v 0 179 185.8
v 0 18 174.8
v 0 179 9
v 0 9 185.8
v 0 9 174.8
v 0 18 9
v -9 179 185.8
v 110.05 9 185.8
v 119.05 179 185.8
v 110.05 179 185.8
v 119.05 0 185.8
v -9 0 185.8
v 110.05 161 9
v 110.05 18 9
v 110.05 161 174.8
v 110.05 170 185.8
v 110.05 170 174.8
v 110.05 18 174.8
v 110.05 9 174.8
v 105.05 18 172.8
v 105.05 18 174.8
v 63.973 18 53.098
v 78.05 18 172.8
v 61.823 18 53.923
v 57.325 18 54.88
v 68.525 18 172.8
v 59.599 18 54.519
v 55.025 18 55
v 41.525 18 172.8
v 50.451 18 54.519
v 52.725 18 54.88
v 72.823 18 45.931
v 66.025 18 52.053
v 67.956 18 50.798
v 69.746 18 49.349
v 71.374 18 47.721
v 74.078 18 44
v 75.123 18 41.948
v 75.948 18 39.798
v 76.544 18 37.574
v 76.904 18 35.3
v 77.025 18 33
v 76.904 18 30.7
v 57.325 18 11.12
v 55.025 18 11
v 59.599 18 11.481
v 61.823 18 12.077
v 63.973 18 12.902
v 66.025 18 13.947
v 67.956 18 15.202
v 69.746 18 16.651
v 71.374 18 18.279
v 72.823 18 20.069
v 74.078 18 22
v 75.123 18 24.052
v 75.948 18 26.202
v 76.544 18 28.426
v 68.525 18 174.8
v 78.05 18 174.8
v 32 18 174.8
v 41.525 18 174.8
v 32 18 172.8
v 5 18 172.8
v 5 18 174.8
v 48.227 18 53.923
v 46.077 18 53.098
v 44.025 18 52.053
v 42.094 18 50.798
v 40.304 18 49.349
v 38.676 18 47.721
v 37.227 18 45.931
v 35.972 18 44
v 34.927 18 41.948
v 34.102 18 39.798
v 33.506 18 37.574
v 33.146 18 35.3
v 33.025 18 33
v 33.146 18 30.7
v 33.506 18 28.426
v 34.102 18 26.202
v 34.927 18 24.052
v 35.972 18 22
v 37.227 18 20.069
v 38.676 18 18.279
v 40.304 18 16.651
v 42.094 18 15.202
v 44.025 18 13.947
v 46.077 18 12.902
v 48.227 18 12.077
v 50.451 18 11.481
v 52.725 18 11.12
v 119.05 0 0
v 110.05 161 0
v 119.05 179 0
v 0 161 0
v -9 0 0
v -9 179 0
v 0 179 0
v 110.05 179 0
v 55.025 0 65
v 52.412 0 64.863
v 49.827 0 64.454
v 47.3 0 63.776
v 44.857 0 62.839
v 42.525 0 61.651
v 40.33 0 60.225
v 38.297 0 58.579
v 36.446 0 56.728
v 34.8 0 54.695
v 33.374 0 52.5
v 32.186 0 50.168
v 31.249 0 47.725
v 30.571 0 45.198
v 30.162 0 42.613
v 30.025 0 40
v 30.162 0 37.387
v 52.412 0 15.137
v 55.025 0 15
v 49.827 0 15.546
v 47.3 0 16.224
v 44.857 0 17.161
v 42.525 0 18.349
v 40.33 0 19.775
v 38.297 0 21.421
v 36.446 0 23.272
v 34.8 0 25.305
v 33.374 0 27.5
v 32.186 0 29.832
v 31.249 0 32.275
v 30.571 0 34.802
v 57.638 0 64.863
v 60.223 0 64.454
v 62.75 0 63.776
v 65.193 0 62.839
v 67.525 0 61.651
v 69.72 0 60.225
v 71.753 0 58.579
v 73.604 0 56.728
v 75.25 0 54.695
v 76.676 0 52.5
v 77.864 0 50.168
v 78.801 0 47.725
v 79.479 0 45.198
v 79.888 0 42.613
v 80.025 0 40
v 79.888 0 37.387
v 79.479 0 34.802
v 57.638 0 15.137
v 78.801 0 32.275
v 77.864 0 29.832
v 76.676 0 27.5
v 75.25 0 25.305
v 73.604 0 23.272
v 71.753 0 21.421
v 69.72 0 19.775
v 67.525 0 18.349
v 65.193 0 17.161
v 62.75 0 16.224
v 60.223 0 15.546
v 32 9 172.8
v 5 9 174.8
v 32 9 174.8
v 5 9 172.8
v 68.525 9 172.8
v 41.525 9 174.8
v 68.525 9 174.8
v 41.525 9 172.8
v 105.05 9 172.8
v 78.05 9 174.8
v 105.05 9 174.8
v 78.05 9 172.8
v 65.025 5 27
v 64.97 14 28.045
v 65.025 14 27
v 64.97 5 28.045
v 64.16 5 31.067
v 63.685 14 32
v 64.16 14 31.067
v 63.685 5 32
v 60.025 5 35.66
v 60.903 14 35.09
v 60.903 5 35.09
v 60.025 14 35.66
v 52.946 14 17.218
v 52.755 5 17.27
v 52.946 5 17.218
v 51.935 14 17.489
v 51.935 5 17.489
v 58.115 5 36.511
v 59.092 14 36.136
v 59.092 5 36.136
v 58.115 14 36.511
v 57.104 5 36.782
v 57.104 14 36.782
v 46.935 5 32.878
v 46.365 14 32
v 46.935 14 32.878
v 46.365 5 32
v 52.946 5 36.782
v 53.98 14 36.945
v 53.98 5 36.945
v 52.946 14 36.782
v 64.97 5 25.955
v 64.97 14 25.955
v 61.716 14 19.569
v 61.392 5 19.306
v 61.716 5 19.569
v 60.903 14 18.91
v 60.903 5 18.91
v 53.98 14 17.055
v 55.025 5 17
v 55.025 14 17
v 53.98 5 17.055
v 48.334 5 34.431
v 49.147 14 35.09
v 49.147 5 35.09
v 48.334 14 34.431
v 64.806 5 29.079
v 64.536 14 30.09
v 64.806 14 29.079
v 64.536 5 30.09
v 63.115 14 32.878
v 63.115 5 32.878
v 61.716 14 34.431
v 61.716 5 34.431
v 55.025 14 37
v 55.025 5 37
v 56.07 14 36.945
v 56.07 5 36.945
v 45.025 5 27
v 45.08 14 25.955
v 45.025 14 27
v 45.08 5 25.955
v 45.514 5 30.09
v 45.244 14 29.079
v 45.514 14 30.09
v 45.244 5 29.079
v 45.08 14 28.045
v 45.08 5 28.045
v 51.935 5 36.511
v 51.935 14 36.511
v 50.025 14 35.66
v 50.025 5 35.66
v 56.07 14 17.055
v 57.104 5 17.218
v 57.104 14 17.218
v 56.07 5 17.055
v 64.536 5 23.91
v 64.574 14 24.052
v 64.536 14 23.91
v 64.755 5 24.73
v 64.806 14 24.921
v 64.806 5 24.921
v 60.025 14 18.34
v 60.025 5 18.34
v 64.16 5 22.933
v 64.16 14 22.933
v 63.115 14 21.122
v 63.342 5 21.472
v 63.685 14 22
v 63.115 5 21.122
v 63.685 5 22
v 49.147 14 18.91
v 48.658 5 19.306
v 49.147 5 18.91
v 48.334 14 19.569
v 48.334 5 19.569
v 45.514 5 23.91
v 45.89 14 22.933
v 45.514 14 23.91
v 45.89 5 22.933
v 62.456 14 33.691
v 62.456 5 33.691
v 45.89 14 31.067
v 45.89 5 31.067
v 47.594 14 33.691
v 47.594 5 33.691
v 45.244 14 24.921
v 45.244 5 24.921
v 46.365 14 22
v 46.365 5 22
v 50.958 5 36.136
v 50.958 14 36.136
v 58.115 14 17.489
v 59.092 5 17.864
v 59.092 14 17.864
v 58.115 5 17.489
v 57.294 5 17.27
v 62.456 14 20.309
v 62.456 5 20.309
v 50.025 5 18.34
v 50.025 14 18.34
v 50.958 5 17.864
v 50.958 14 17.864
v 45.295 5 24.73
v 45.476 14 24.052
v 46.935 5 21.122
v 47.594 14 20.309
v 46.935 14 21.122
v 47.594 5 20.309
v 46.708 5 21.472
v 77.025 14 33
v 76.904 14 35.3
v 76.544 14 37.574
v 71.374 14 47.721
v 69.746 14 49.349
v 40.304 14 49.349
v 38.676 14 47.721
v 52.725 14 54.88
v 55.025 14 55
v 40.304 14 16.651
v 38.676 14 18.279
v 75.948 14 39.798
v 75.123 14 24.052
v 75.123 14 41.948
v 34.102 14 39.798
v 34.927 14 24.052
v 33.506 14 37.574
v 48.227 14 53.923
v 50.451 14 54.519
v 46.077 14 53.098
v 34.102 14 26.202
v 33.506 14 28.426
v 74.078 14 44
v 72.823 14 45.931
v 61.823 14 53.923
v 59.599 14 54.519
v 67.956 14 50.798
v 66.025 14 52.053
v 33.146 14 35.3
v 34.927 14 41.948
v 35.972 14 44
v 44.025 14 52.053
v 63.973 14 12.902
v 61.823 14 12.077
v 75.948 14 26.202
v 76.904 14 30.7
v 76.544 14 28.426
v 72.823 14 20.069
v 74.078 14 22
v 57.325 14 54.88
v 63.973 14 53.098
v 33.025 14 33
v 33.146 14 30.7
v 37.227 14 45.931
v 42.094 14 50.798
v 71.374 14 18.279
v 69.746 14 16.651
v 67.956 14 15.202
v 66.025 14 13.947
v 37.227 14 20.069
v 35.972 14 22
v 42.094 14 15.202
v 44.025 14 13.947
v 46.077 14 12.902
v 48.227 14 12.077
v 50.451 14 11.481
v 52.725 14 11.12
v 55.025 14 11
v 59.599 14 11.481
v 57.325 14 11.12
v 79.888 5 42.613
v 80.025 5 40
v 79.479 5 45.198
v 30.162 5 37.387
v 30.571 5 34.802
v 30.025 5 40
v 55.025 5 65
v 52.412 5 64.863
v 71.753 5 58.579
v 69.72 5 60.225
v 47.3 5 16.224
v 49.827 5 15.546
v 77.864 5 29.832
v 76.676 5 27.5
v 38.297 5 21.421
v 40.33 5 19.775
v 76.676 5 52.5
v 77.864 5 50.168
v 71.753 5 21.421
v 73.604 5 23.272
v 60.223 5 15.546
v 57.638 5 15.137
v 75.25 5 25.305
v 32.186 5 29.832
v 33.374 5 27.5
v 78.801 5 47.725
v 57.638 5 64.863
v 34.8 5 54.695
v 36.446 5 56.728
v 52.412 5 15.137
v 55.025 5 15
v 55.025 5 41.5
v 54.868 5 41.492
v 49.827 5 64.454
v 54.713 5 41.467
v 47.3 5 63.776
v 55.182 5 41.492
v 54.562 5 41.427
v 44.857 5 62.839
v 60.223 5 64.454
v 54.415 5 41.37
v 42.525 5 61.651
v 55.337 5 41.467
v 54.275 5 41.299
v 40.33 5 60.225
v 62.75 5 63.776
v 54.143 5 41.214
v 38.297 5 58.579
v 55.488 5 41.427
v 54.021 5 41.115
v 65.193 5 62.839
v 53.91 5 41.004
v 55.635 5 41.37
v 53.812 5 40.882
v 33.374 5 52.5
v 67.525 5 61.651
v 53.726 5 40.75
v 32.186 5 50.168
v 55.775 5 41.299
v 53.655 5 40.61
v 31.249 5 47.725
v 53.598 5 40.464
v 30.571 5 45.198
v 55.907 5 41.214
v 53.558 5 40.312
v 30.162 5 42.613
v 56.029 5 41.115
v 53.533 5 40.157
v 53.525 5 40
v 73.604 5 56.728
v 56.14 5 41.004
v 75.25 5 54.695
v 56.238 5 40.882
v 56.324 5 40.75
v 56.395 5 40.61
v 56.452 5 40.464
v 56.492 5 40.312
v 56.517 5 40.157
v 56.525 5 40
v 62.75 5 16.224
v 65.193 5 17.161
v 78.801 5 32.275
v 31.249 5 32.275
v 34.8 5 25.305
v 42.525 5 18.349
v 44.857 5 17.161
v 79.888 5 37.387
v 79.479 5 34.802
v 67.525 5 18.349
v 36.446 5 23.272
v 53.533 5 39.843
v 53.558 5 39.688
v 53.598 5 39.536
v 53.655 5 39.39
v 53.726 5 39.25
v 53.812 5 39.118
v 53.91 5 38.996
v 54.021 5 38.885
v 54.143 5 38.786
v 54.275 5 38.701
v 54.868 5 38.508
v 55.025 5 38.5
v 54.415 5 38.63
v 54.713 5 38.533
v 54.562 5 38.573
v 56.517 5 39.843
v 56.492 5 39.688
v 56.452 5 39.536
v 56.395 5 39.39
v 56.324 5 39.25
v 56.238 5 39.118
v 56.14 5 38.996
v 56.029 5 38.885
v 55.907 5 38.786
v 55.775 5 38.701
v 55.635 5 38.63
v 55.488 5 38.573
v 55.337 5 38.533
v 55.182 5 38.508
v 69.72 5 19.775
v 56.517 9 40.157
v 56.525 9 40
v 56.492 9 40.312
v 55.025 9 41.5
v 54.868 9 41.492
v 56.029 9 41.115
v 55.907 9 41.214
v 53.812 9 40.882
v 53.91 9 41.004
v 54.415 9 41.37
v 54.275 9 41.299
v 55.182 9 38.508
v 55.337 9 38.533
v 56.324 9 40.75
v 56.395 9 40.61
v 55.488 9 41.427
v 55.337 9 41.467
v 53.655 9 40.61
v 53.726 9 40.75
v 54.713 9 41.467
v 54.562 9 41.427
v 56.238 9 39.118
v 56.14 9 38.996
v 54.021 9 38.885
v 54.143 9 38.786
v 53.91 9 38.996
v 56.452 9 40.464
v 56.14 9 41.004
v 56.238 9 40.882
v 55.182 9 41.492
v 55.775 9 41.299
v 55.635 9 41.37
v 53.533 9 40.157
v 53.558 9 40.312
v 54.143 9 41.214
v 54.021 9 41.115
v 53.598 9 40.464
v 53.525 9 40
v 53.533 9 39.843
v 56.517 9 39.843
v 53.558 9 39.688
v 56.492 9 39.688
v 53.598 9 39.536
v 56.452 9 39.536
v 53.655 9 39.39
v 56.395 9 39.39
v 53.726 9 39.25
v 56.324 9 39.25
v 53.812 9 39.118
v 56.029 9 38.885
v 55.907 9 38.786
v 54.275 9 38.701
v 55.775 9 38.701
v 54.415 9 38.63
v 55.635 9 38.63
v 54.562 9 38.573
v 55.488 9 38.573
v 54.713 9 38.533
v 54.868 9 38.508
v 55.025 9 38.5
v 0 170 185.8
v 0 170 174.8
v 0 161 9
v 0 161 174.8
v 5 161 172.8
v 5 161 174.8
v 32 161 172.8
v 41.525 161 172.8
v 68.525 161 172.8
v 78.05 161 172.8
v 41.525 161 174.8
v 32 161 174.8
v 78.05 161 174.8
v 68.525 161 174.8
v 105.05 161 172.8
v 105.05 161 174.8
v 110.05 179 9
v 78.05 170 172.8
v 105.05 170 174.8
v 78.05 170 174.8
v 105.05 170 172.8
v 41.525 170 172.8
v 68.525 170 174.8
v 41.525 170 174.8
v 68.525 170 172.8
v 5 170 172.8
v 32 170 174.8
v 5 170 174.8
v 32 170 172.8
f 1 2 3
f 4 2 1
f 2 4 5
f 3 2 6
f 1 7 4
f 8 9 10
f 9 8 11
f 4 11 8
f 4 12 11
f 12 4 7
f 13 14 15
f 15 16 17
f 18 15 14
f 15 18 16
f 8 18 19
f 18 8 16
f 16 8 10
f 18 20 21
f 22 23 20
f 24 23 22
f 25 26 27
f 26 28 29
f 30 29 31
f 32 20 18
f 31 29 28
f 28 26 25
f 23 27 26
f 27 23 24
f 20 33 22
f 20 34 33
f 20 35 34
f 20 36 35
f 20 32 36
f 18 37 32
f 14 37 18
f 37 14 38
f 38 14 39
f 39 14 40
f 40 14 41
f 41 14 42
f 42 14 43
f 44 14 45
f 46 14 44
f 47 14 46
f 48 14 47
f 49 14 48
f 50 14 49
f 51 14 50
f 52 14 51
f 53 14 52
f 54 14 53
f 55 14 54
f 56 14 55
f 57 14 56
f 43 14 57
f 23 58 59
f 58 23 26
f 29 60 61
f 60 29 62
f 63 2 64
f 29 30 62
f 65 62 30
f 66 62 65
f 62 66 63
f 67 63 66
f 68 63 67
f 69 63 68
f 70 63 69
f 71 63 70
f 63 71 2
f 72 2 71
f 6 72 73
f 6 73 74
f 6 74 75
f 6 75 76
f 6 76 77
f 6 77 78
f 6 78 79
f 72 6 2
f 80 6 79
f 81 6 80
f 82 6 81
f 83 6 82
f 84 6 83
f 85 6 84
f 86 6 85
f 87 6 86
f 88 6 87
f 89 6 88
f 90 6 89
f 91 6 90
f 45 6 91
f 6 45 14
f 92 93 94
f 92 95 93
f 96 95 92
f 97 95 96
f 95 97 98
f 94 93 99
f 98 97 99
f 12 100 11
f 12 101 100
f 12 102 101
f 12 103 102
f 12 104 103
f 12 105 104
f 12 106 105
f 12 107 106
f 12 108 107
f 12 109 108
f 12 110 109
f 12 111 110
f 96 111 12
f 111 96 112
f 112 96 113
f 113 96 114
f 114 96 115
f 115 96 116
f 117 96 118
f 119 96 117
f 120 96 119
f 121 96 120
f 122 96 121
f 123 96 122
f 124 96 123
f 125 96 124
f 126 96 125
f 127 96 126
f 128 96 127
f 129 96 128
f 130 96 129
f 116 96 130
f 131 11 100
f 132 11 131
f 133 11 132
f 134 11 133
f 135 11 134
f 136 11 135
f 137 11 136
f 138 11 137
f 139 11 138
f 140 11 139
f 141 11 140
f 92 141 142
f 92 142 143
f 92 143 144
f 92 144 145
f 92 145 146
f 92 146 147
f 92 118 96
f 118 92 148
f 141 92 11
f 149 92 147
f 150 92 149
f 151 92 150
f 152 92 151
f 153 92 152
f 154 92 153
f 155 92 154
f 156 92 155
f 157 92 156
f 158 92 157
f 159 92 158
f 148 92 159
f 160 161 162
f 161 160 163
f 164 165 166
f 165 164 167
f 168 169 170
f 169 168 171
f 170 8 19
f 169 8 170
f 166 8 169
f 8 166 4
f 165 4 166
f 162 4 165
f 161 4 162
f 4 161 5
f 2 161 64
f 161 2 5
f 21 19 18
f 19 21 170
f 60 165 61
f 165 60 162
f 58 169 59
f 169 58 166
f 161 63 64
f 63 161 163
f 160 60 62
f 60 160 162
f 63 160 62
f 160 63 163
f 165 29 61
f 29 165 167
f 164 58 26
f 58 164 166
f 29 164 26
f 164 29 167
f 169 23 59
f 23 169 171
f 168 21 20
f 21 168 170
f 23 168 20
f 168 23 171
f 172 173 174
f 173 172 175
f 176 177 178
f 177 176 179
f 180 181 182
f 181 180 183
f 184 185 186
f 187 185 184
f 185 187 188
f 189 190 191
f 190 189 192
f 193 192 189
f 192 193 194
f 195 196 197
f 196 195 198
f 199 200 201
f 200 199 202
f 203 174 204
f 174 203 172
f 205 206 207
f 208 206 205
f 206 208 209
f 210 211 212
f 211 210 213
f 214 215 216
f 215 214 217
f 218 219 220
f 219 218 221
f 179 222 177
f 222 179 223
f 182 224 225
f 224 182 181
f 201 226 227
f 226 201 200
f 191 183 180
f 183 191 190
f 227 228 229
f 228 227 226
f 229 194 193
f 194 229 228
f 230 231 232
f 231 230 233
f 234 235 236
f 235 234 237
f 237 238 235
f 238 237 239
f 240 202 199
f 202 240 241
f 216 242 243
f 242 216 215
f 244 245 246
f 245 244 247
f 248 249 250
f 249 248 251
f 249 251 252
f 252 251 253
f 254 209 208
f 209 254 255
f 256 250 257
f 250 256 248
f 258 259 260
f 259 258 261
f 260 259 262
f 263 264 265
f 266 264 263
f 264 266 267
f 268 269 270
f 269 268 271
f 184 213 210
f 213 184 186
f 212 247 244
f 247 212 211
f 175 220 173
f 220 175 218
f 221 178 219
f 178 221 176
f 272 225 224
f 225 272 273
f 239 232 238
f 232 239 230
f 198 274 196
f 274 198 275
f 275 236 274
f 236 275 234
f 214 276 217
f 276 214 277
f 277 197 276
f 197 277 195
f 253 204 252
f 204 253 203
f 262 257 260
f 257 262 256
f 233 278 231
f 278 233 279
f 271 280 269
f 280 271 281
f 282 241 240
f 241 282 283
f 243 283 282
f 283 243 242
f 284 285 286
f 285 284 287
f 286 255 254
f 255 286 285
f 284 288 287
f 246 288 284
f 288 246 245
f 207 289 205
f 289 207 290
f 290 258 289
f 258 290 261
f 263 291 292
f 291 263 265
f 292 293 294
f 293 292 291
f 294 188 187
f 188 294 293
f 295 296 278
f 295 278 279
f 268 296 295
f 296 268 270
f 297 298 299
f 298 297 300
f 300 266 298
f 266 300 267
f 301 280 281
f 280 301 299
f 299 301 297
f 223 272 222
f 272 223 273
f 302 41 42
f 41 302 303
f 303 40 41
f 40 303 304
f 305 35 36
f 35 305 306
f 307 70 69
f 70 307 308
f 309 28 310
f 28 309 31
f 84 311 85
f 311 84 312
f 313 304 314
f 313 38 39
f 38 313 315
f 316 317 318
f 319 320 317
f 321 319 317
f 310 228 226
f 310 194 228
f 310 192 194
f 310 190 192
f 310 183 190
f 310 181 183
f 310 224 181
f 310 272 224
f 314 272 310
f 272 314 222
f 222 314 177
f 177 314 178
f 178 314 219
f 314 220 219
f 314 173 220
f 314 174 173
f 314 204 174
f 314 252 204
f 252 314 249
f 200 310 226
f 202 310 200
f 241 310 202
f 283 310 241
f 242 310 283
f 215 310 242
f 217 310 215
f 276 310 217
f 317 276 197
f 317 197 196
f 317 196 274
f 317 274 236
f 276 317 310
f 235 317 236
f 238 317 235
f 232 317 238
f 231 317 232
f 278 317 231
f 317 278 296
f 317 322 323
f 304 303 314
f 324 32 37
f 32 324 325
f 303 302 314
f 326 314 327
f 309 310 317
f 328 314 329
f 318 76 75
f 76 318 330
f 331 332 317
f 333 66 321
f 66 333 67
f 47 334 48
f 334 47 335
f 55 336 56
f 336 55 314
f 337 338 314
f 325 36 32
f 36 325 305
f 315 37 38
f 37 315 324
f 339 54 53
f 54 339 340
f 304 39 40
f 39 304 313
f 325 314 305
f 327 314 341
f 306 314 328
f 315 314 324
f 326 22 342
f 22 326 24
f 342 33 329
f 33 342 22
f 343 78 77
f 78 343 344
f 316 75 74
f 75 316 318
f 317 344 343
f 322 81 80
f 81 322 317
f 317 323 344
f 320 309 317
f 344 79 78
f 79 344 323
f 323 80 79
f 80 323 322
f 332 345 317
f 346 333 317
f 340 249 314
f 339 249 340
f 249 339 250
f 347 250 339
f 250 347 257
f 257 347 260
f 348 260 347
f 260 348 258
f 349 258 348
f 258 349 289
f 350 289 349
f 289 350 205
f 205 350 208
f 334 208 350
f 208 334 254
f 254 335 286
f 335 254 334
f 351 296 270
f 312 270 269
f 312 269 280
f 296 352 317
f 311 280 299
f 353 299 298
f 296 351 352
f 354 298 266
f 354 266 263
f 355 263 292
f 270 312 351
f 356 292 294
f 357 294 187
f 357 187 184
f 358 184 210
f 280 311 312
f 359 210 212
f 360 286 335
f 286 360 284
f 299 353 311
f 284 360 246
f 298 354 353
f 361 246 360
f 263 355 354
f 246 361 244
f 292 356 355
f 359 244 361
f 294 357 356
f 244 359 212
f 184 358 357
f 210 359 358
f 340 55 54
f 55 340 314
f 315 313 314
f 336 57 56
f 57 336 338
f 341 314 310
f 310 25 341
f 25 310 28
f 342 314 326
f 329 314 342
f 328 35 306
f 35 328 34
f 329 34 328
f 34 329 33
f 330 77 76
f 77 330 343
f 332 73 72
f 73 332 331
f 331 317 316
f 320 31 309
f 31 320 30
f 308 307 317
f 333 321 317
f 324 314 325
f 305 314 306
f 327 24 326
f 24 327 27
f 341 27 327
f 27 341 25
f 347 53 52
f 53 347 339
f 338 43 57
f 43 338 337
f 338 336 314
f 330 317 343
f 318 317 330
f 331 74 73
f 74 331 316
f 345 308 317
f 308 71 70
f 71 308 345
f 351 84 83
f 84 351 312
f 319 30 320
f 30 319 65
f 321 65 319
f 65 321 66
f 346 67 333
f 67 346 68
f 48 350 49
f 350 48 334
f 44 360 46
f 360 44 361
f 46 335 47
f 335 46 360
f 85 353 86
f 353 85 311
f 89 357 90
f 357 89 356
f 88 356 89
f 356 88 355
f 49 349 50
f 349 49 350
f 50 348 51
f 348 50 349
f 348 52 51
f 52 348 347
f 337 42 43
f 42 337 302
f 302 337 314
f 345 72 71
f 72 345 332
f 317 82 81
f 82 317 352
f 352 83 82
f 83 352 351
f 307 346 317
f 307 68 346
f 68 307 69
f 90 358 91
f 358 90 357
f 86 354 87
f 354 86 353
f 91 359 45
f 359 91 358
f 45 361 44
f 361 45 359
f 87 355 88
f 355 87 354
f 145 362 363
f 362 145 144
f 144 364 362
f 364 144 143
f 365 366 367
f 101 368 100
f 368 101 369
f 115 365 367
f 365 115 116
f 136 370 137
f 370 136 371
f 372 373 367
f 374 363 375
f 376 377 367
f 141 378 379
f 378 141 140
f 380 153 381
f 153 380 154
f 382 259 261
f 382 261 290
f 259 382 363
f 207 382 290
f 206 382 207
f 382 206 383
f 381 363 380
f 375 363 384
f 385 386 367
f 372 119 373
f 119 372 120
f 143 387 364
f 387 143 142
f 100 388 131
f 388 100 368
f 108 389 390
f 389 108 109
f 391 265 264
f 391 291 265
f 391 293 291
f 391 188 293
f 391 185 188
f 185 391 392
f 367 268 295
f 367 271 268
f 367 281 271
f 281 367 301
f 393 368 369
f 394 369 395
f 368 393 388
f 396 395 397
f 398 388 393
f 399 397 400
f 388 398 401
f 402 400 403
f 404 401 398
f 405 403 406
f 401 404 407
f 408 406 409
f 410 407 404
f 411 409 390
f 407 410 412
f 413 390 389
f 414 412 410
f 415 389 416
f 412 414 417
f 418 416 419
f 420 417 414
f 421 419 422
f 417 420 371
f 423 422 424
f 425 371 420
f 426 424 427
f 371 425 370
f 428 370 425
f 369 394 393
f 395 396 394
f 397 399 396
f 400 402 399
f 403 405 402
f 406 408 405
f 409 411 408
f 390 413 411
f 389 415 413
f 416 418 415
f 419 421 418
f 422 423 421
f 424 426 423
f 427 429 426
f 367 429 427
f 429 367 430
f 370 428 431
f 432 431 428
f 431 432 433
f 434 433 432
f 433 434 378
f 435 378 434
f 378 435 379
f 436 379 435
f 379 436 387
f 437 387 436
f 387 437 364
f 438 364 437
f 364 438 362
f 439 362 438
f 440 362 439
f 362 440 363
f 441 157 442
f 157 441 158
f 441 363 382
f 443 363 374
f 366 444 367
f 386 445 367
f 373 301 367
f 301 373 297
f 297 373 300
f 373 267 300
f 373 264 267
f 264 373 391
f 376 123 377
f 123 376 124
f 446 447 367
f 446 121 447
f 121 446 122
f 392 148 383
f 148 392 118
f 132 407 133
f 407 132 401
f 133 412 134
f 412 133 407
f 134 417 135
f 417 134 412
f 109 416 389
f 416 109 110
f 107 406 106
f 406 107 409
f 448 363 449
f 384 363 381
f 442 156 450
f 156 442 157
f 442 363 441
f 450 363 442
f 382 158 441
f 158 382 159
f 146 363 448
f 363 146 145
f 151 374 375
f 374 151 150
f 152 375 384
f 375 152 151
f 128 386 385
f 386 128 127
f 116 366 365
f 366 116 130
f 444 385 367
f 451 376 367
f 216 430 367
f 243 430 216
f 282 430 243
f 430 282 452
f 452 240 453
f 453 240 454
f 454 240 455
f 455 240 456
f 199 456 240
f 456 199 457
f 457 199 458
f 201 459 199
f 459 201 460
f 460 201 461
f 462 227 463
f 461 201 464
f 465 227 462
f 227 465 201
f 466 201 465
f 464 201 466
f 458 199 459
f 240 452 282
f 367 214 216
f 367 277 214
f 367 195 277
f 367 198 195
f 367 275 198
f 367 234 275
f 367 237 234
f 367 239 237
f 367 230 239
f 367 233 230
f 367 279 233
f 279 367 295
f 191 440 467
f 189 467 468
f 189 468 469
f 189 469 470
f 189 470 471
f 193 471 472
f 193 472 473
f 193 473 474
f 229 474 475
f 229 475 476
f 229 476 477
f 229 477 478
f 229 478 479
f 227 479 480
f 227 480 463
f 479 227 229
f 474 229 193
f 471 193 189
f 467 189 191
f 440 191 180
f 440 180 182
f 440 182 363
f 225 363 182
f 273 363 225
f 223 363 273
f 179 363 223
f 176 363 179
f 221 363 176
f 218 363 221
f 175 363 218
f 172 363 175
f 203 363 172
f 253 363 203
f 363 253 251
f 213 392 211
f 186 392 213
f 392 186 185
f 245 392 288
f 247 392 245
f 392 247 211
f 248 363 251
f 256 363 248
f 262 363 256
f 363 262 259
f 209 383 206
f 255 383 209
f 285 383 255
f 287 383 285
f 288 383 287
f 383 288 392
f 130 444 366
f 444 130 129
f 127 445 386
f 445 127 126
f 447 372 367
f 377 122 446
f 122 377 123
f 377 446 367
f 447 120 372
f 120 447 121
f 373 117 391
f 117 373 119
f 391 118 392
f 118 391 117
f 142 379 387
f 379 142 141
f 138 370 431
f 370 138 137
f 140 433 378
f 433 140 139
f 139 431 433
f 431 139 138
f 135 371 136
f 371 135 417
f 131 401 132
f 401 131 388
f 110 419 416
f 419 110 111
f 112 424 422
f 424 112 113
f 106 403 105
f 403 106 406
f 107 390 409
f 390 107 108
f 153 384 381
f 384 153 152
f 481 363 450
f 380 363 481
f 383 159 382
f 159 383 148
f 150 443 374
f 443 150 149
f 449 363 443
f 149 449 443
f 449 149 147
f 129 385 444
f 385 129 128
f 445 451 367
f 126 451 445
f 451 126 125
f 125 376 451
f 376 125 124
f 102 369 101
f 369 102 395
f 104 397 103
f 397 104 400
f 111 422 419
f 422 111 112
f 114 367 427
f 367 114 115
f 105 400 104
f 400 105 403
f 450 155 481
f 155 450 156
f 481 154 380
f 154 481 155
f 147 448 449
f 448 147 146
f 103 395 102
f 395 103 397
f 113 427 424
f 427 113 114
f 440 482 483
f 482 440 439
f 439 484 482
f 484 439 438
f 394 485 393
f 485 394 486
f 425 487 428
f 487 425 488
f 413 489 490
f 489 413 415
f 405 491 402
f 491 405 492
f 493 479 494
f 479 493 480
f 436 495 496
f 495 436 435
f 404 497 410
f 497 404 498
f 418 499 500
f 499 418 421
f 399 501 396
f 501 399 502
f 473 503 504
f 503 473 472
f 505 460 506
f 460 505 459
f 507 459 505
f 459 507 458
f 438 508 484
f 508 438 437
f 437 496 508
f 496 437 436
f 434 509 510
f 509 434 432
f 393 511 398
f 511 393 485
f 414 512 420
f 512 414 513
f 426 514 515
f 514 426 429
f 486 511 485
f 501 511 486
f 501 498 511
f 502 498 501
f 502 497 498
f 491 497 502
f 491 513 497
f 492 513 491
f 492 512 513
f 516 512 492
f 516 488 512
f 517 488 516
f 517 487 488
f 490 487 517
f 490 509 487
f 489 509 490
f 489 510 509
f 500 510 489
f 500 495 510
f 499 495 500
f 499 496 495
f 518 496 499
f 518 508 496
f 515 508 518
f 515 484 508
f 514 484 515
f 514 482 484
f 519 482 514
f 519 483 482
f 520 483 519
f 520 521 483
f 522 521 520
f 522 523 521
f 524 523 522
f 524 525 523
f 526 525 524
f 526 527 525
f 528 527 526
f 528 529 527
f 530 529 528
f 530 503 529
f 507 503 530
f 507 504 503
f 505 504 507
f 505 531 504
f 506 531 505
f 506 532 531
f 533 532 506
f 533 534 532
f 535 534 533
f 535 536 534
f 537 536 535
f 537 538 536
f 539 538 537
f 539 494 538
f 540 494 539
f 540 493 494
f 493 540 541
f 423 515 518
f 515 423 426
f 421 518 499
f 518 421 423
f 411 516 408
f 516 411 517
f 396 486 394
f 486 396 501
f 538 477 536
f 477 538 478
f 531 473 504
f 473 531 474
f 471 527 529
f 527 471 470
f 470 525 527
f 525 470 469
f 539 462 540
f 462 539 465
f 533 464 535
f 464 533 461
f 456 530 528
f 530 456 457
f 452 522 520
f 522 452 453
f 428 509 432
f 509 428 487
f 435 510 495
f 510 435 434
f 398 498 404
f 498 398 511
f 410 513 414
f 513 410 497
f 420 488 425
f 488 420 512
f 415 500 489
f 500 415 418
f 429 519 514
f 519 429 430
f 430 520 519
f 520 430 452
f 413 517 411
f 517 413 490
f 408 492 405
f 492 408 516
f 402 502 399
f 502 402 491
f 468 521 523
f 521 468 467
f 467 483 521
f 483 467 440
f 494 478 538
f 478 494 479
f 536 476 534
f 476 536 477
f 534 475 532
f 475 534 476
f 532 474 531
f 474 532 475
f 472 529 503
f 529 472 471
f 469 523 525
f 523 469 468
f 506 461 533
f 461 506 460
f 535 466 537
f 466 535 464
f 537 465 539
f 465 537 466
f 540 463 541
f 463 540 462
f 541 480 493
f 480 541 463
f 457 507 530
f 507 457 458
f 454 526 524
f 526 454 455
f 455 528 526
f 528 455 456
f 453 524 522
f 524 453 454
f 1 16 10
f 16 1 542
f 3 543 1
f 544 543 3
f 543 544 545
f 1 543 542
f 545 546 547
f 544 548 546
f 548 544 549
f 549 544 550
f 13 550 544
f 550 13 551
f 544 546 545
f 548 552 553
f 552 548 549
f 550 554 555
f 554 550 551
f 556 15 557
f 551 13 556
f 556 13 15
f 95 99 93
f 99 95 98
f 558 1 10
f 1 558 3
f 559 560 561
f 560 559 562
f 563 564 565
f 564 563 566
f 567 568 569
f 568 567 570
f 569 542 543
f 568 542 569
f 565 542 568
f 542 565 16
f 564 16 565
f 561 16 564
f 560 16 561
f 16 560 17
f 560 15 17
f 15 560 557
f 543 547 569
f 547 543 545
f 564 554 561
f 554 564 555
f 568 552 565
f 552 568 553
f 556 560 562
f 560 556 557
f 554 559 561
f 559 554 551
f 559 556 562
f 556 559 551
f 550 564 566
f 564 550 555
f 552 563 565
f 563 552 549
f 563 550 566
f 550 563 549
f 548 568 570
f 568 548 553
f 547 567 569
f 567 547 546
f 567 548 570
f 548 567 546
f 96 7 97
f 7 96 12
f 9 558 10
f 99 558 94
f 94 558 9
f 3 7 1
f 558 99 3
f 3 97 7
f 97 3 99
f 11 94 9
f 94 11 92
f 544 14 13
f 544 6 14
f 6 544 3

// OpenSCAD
/*
Open 4 Frame Mating Nuc, 3 frame version
released to the Public Domain by Robert Niles
*/


// these sizes are the best
// doesn't include each 9mm side
// the width allows the use of three frames which can be
// spanned together equaling one full standard langstroth frame
// so you can start them in a regular hive and/or move them
// from the nuc to a regular hive when finished.

width = 110.05; // x axis 
depth = 179; // y axis
framelength = depth-18; // y axis: minus 9mm from each side
echo(framelength=framelength);
height = 185.8; // z axis : 158.8 frame height + 9mm above + 9mm below + the 9mm bottom

// front wall
difference() {
    fb_wall(width,height);
    translate([(width/2)-27,0,8]) entrance_area();    
}    
// back wall
translate([width,depth,0]) rotate([180,180,0]) fb_wall(width,height);

// side 1
color("green") translate([-9,0,0]) cube([9,depth,height]);

// side 2
color("green") translate([width,0,0]) cube([9,depth,height]);

//bottom
cube([width,depth,9]);


module fb_wall(w=146.575,h=185.8){  
    difference() {
        // basic side
        cube([w,18,h]);
        
        // frame ledge
        translate([w,9,h-11]) rotate([0,0,90]) cube([9.525,w,16.1]);

        // frame grooves
        translate([5,9,h-13]) cube([27,9.525,14]);
        translate([5+27+9.525,9,h-13]) cube([27,9.525,14]);
        translate([5+27+9.525+27+9.525,9,h-13]) cube([27,9.525,14]);
        //translate([5+27+9.525+27+9.525+27+9.525,9,h-13]) cube([27,9.525,14]);   
    }
}


module entrance_area() {
        $fn=60;
        // create the entrance hole
        translate([27,20,19]) {
            rotate([90,0,0]) {
                color("green") {
                cylinder(h=21, r=10);
               }
            }
        }
        

        translate([27,35,25]) {
            rotate([90,0,0]) {
                color("blue") {
                cylinder(h=21, r=22);
               }
            }
        }
        
            
        // gate area
        translate([27,5,32]) {
            rotate([90,0,0]) {
                color("green") {
                cylinder(h=6, r=25);
               }
            }
        }
        
        // gate area screw hole
        translate([27,9,32]) {
            rotate([90,0,0]) {
                color("red") {
                cylinder(h=10, r=1.5);
               }
            }
        }        
}
